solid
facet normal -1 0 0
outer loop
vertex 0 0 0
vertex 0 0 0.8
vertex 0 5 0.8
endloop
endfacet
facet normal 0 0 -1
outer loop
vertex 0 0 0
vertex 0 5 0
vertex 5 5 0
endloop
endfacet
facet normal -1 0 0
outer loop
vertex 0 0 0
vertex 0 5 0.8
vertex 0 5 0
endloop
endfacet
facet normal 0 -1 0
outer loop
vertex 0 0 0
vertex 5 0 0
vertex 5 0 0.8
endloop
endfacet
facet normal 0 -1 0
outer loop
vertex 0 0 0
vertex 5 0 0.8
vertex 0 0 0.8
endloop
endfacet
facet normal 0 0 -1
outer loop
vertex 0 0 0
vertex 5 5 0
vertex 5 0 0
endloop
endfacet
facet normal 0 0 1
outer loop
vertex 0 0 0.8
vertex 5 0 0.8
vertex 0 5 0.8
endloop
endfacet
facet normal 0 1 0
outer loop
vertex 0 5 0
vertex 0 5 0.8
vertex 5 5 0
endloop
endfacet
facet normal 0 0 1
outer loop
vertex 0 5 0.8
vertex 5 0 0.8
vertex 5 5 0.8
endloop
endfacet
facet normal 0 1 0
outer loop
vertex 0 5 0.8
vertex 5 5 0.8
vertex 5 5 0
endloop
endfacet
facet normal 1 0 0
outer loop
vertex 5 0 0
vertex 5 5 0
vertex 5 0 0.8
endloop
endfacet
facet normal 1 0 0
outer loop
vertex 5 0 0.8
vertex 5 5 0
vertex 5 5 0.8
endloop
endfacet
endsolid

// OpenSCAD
/* Warning, this is a very basic generator with a lot of approximation 
input data : [WQFN, 6PX, 5x5x0.8mm, 40, , A, C04-00306A]
generated by com.zoubworld.electronics.cad.model3d.Basic
Date : Sun Feb 15 10:50:48 CET 2026
*/

//body
color("black")
translate([0,0,0])
cube([5.0,5.0,0.8], center=false);
